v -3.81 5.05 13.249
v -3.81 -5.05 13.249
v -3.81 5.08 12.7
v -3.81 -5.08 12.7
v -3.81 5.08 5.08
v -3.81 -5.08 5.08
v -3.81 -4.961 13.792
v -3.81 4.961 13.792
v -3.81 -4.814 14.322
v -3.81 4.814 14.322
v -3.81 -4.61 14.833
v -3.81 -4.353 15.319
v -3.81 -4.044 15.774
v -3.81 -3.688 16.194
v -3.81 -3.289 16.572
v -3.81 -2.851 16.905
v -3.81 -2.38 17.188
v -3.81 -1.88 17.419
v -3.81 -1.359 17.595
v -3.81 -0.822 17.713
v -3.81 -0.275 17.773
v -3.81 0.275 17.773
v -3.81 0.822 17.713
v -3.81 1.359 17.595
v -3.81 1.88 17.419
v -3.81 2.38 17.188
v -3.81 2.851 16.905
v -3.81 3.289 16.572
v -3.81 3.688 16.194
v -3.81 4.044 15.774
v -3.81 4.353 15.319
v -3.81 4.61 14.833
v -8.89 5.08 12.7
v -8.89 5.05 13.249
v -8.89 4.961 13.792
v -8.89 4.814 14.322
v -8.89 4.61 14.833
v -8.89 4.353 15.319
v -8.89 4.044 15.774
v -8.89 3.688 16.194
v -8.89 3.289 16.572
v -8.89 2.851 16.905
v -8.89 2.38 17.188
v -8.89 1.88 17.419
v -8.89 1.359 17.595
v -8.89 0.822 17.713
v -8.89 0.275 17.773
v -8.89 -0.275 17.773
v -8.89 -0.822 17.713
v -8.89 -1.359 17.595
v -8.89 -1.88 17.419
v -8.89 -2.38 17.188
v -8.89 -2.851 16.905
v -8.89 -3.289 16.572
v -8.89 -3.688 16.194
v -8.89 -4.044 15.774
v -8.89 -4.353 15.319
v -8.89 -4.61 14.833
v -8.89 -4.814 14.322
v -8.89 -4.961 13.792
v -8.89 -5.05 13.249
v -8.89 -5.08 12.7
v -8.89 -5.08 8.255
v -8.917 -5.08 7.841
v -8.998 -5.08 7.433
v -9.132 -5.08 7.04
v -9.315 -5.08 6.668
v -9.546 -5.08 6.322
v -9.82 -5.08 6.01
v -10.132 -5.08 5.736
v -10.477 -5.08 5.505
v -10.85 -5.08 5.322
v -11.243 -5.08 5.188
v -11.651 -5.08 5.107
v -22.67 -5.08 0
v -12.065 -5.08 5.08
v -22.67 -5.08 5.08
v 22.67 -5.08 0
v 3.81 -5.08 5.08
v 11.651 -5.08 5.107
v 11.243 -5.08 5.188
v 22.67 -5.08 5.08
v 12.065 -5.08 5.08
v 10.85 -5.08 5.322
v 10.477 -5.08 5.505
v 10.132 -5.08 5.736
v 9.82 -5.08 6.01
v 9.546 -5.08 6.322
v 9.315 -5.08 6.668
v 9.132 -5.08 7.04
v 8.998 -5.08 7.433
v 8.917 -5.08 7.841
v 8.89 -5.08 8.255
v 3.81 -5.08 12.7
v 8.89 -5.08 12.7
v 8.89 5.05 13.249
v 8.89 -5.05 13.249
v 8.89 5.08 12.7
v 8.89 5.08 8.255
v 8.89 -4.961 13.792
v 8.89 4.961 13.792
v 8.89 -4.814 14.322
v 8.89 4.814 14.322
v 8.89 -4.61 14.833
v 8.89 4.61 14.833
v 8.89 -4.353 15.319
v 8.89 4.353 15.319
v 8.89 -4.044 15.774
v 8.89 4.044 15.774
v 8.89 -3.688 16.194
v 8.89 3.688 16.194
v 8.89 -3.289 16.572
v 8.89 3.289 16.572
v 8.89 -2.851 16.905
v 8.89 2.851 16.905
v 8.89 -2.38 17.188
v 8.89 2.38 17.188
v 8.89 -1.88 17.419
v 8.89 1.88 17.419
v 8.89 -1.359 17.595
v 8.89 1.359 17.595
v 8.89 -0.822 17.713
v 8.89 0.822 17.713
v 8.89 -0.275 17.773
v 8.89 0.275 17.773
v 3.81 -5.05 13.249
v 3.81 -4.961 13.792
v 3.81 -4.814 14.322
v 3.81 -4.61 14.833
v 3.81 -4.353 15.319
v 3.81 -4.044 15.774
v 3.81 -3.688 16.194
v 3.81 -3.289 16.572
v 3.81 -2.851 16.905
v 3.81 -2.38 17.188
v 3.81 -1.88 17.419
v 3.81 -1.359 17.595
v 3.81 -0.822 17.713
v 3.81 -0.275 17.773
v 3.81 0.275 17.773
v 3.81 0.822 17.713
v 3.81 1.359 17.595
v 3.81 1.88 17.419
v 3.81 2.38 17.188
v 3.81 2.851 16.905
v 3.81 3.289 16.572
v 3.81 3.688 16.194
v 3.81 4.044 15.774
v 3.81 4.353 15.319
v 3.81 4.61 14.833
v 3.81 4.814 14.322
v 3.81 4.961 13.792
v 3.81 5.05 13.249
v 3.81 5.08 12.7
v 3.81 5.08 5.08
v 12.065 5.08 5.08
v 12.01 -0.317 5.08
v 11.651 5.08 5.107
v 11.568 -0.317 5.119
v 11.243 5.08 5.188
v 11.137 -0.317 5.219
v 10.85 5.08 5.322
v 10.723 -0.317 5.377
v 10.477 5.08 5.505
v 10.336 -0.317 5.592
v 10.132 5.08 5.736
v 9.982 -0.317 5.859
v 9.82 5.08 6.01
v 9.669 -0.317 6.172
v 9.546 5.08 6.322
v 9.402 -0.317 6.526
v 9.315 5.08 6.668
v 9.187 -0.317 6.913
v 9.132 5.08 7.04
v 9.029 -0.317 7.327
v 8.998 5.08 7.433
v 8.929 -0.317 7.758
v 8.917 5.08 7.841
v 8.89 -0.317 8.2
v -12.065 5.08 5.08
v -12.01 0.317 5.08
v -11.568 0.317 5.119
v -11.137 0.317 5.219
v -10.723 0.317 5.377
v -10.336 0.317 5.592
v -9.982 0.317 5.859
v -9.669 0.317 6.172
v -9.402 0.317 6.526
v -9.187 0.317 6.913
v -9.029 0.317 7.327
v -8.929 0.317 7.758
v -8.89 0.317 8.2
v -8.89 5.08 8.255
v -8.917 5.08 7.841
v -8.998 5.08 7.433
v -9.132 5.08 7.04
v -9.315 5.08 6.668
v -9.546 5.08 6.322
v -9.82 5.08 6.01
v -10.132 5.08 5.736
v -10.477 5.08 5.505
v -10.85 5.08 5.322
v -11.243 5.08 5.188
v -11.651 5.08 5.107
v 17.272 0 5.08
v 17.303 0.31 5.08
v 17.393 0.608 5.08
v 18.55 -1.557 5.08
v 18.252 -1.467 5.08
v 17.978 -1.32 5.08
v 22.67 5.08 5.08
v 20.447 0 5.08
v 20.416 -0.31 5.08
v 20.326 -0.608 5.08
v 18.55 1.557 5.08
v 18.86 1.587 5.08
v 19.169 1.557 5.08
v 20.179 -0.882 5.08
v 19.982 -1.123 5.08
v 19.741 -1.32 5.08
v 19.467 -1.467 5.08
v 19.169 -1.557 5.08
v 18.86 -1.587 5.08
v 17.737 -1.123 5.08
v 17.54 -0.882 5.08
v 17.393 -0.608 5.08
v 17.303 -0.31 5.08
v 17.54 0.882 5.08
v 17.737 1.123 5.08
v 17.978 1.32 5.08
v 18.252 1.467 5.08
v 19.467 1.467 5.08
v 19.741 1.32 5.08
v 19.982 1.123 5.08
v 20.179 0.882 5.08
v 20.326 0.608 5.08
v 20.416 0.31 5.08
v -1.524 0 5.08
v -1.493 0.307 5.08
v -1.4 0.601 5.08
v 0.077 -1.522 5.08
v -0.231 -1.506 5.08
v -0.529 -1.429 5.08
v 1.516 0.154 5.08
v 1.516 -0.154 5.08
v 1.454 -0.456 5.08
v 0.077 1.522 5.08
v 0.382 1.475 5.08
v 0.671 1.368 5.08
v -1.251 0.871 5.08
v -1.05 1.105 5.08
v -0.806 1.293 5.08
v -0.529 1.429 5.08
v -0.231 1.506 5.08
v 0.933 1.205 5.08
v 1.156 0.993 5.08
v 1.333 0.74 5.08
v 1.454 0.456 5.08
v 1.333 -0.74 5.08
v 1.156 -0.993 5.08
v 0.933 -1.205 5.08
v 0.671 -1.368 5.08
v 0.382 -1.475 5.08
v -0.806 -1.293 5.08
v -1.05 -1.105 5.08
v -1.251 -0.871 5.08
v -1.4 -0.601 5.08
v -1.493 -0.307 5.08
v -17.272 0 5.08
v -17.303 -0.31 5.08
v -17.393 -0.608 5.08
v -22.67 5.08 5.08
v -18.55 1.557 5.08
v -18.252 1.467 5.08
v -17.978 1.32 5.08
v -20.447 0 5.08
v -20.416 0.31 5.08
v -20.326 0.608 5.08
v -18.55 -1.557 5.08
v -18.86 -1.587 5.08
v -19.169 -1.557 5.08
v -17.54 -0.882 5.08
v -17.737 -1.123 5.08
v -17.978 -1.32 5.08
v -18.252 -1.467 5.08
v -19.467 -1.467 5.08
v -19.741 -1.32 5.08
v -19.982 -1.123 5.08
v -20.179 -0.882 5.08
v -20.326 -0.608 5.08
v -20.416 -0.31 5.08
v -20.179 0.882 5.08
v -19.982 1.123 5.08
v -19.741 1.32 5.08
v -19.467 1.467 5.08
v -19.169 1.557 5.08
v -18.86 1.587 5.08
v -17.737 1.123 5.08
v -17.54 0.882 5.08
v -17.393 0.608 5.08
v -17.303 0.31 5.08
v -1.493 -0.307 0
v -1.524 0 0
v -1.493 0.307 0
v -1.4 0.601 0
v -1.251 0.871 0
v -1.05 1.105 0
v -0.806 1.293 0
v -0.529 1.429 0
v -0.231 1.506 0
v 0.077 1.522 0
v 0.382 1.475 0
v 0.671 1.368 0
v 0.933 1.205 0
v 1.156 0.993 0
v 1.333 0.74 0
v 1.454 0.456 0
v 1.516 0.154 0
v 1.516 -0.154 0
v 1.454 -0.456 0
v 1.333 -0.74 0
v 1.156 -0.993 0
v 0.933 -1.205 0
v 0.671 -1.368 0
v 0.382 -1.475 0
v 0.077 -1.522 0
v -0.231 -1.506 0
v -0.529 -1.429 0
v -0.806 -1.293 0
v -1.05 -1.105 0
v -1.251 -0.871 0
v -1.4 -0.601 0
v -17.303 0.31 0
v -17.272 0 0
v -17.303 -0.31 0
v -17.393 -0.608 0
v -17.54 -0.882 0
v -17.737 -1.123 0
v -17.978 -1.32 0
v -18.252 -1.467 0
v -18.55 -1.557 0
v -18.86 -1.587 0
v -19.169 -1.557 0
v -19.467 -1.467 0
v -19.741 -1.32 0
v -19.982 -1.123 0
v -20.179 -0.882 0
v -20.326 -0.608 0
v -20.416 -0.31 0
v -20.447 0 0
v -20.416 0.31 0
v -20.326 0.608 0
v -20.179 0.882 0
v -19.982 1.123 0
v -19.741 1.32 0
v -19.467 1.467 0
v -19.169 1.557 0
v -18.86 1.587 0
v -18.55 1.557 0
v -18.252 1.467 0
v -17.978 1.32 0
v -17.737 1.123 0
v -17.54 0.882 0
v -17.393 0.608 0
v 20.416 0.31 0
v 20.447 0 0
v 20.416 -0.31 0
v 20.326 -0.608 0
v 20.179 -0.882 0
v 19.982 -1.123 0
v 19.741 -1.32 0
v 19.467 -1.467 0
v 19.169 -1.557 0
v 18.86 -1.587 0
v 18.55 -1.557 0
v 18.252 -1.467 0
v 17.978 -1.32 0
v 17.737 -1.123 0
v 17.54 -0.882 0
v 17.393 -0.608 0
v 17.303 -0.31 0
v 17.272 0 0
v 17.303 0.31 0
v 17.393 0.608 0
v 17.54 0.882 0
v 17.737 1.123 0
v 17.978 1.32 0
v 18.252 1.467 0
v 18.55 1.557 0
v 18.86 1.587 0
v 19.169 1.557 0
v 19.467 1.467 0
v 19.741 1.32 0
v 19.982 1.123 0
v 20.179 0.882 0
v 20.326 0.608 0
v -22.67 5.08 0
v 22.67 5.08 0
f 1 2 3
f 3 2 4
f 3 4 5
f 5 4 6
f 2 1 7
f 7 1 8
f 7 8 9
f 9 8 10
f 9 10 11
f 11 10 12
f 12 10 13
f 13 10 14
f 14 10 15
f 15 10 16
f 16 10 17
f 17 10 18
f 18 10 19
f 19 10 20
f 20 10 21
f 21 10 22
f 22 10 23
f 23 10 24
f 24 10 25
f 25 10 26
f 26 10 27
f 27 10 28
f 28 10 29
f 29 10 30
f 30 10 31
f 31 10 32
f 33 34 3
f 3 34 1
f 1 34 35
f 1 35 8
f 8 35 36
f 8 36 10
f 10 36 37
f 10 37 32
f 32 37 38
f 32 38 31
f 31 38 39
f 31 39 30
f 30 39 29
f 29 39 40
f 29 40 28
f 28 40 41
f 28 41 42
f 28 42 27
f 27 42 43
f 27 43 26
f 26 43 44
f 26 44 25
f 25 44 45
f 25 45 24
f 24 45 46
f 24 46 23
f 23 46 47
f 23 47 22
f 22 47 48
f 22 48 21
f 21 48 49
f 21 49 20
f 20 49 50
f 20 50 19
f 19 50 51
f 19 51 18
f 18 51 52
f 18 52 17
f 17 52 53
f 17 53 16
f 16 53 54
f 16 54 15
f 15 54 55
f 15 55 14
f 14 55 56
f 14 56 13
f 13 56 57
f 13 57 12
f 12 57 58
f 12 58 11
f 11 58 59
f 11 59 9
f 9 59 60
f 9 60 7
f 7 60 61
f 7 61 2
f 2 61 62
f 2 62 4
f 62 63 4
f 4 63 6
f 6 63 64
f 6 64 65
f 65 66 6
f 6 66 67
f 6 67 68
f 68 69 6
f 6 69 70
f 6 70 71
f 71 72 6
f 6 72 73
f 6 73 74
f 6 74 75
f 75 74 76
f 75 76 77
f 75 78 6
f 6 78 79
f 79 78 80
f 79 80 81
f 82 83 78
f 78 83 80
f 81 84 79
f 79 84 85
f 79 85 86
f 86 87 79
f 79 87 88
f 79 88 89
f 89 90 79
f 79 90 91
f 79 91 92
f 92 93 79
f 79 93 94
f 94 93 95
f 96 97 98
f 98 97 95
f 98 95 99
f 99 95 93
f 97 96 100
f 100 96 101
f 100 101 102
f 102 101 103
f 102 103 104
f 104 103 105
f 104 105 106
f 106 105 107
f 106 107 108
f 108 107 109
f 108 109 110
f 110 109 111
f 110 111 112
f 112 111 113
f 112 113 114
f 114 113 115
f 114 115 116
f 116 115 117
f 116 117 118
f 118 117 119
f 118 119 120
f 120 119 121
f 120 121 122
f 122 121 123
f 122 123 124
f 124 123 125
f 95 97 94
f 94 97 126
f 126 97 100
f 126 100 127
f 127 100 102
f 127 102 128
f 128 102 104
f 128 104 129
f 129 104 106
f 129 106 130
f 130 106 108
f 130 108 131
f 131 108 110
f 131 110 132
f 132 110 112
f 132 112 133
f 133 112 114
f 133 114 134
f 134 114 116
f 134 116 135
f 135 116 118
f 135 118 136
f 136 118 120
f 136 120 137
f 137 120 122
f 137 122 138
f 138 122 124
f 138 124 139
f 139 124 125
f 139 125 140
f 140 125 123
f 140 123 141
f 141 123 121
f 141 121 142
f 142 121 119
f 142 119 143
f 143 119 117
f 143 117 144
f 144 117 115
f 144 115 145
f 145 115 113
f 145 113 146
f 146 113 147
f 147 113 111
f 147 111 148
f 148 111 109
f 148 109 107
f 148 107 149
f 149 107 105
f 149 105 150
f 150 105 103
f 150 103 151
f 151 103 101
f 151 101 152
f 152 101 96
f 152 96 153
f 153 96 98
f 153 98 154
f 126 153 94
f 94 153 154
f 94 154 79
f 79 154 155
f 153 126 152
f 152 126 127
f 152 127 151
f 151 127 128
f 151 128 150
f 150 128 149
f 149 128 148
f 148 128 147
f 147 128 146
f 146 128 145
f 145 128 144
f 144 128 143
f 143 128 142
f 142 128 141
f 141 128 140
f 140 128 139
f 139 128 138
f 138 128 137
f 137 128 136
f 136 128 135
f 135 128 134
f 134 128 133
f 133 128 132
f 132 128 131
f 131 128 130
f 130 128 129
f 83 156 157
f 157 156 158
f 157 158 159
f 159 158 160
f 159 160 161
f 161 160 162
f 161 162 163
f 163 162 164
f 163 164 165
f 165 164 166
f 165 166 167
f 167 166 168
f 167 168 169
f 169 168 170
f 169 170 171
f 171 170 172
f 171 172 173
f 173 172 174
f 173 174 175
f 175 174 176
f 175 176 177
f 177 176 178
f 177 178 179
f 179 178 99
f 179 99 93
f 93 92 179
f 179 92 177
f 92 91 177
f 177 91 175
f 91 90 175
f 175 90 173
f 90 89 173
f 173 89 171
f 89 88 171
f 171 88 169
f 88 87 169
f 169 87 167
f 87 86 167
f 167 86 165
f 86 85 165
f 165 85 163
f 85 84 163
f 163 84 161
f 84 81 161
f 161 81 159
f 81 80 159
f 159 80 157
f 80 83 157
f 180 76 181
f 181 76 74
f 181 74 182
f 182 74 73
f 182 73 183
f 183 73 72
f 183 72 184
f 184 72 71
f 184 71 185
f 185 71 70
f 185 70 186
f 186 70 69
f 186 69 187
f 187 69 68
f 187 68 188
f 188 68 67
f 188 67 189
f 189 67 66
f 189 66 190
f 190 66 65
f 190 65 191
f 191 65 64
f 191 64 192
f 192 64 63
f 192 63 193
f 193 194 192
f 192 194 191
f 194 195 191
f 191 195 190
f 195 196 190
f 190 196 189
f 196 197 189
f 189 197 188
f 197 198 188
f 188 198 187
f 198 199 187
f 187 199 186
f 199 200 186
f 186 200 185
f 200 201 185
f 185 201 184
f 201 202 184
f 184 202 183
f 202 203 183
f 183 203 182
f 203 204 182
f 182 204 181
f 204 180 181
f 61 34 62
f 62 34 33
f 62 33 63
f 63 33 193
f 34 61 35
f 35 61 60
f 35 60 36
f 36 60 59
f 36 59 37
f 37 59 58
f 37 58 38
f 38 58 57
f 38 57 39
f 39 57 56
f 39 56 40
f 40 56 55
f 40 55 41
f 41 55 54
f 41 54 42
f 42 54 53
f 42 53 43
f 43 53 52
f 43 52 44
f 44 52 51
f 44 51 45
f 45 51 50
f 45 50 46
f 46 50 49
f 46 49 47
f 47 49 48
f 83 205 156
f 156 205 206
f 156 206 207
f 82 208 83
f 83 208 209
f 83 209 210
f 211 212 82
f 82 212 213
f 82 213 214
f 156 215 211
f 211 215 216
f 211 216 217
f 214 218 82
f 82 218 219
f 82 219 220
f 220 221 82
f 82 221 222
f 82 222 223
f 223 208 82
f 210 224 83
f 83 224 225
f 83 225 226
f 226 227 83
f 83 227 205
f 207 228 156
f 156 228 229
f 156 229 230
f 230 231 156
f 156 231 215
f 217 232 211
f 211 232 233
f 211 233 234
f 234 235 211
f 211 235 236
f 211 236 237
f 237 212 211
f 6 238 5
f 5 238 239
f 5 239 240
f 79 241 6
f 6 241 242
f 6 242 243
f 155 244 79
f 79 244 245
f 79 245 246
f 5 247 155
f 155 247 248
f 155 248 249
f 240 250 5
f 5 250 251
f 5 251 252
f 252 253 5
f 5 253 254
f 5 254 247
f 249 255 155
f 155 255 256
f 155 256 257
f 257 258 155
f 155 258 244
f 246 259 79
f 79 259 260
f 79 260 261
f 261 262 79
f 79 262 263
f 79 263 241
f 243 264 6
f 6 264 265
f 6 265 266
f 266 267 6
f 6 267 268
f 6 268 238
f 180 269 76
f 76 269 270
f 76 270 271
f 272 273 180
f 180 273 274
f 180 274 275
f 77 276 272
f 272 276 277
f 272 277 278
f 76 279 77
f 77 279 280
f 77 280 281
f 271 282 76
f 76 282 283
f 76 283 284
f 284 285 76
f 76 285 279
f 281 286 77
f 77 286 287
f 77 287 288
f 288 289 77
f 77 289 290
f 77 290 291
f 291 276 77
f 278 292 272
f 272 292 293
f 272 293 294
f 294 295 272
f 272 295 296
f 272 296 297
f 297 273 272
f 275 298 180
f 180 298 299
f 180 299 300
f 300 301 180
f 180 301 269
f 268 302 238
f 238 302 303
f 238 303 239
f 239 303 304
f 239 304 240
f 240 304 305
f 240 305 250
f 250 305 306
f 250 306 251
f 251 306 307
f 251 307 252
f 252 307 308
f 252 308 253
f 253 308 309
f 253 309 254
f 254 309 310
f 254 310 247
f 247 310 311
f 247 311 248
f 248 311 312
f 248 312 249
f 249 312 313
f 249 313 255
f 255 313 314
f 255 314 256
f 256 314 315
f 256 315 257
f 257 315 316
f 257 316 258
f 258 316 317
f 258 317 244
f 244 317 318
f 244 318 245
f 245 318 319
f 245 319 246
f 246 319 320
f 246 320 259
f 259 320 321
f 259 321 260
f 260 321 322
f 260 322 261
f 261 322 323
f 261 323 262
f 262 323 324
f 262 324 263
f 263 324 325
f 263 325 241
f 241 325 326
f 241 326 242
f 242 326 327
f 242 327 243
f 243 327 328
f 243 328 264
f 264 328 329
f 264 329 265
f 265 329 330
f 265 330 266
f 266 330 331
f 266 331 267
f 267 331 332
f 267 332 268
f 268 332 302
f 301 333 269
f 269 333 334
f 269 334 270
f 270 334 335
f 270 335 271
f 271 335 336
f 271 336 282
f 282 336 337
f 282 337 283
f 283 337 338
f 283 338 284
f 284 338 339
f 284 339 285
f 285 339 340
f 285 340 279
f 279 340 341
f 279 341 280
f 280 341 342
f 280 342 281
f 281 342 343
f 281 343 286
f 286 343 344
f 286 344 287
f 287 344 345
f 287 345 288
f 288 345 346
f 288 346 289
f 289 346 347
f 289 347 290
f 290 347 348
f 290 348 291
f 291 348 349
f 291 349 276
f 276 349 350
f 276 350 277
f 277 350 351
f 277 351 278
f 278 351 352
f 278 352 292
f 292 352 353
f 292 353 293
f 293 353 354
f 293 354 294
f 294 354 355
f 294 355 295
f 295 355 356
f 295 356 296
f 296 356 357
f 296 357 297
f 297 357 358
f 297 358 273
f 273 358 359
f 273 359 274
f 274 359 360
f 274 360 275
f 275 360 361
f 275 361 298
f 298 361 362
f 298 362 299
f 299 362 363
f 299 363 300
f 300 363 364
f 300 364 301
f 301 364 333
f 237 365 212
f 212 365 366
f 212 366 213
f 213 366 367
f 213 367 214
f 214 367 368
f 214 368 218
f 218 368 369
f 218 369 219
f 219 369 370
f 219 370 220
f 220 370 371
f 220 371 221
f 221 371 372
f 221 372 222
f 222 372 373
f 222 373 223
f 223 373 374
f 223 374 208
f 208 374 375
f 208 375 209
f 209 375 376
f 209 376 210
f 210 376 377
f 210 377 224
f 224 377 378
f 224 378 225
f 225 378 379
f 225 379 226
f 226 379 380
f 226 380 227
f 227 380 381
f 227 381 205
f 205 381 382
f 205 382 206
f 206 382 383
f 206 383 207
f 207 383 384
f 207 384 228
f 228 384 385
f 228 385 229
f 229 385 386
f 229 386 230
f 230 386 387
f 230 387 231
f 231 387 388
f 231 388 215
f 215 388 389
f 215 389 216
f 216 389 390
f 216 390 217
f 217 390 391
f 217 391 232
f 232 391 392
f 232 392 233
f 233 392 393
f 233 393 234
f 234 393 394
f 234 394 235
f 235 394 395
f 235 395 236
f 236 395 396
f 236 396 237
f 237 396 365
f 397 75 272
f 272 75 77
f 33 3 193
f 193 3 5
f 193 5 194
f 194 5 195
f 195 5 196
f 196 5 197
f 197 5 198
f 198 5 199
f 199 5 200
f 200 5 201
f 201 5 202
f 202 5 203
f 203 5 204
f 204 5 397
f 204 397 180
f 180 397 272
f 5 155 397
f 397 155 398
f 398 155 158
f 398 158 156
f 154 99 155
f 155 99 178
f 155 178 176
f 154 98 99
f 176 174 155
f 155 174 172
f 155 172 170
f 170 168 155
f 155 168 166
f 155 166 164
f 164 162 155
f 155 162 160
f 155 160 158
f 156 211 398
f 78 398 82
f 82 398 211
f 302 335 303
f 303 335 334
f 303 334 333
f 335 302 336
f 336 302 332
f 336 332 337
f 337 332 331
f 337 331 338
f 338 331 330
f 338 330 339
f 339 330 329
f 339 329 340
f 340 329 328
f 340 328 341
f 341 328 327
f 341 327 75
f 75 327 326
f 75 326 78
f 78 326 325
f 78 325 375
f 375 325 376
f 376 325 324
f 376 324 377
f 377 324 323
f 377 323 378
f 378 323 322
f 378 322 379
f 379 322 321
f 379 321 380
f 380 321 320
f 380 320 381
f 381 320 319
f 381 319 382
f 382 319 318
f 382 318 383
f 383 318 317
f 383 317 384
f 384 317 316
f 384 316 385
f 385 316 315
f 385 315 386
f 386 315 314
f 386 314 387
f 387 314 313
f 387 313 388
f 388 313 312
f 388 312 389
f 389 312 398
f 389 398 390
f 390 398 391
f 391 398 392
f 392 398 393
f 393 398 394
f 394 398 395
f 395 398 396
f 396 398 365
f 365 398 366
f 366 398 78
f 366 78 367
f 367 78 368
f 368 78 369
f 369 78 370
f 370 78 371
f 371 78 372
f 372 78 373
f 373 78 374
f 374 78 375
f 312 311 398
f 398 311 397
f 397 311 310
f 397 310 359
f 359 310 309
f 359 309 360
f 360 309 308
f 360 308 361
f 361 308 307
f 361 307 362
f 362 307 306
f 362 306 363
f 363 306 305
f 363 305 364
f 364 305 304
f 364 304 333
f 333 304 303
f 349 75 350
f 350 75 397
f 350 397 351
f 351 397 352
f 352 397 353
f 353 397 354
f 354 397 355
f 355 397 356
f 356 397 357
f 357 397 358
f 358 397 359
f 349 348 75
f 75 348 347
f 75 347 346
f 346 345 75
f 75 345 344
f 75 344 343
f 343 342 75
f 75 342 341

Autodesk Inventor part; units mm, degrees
ref_plane "YZ Plane" through (0, 0, 0) normal (1, 0, 0) x (0, 1, 0)
ref_plane "XZ Plane" through (0, 0, 0) normal (0, 1, 0) x (-1, 0, 0)
ref_plane "XY Plane" through (0, 0, 0) normal (0, 0, 1) x (1, 0, 0)
sketch "Sketch1" plane through (0, 0, 0) normal (0, 0, 1) x (1, 0, 0)
  line L0 (-22.6695, -5.08) -> (22.6695, -5.08)
  line L1 (22.6695, -5.08) -> (22.6695, 5.08)
  line L2 (22.6695, 5.08) -> (-22.6695, 5.08)
  line L3 (-22.6695, 5.08) -> (-22.6695, -5.08)
  line L4 (-22.6695, -5.08) -> (22.6695, 5.08) construction
  line L5 (22.6695, -5.08) -> (-22.6695, 5.08) construction
  point P0 (0, 0)
  dimension "d0" = 10.16
  dimension "d1" = 45.339
extrude "Extrusion1" add sketch "Sketch1" along normal blind 5.08
sketch "Sketch2" plane through (0, 0, 0) normal (0, 0, -1) x (-1, 0, 0)
  line L0 (22.6695, 5.08) -> (22.6695, -5.08) projected
  line L1 (-22.6695, -5.08) -> (-22.6695, 5.08) projected
  line L2 (-22.6695, 5.08) -> (22.6695, 5.08) projected
  point P0 (0, 0)
  point P1 (18.8595, 0)
  point P2 (-18.8595, 0)
  dimension "d4" = 3.81
  dimension "d5" = 3.81
  dimension "d6" = 5.08
  dimension "d7" = 5.08
hole "Hole1" at (-18.8595, 0, 0) at (18.8595, 0, 0) direction (0, 0, 1) diameter 3.175 end through all
sketch "Sketch3" plane through (0, 0, 0) normal (0, 0, -1) x (-1, 0, 0)
  circle A0 centre (0, 0) radius 1.524
  dimension "d15" = 3.048
extrude "Extrusion2" cut sketch "Sketch3" against normal through all
sketch "Sketch4" plane through (0, 0, 5.08) normal (0, 0, 1) x (1, 0, 0)
  line L0 (22.6695, 5.08) -> (-22.6695, 5.08) projected
  line L1 (-22.6695, -5.08) -> (22.6695, -5.08) projected
  line L2 (-3.81, 5.08) -> (-8.89, 5.08)
  line L3 (-8.89, 5.08) -> (-8.89, -5.08)
  line L4 (-8.89, -5.08) -> (-3.81, -5.08)
  line L5 (-3.81, -5.08) -> (-3.81, 5.08)
  line L6 (3.81, 5.08) -> (8.89, 5.08)
  line L7 (8.89, 5.08) -> (8.89, -5.08)
  line L8 (8.89, -5.08) -> (3.81, -5.08)
  line L9 (3.81, -5.08) -> (3.81, 5.08)
  point P0 (0, 0)
  dimension "d18" = 5.08
  dimension "d19" = 3.81
  dimension "d20" = 3.81
  dimension "d21" = 5.08
extrude "Extrusion3" add sketch "Sketch4" along normal blind 12.7 contours L7 L1 L9 L0 | L5 L1 L3 L0
fillet "Fillet1" radius 3.175 2 edges at (-8.89, 0, 5.08) (8.89, 0, 5.08)
fillet "Fillet2" radius 5.08 4 edges at (6.35, -5.08, 17.78) (6.35, 5.08, 17.78) (-6.35, -5.08, 17.78) (-6.35, 5.08, 17.78)
properties part number "LowerSpringMountFrontV1nohole"
